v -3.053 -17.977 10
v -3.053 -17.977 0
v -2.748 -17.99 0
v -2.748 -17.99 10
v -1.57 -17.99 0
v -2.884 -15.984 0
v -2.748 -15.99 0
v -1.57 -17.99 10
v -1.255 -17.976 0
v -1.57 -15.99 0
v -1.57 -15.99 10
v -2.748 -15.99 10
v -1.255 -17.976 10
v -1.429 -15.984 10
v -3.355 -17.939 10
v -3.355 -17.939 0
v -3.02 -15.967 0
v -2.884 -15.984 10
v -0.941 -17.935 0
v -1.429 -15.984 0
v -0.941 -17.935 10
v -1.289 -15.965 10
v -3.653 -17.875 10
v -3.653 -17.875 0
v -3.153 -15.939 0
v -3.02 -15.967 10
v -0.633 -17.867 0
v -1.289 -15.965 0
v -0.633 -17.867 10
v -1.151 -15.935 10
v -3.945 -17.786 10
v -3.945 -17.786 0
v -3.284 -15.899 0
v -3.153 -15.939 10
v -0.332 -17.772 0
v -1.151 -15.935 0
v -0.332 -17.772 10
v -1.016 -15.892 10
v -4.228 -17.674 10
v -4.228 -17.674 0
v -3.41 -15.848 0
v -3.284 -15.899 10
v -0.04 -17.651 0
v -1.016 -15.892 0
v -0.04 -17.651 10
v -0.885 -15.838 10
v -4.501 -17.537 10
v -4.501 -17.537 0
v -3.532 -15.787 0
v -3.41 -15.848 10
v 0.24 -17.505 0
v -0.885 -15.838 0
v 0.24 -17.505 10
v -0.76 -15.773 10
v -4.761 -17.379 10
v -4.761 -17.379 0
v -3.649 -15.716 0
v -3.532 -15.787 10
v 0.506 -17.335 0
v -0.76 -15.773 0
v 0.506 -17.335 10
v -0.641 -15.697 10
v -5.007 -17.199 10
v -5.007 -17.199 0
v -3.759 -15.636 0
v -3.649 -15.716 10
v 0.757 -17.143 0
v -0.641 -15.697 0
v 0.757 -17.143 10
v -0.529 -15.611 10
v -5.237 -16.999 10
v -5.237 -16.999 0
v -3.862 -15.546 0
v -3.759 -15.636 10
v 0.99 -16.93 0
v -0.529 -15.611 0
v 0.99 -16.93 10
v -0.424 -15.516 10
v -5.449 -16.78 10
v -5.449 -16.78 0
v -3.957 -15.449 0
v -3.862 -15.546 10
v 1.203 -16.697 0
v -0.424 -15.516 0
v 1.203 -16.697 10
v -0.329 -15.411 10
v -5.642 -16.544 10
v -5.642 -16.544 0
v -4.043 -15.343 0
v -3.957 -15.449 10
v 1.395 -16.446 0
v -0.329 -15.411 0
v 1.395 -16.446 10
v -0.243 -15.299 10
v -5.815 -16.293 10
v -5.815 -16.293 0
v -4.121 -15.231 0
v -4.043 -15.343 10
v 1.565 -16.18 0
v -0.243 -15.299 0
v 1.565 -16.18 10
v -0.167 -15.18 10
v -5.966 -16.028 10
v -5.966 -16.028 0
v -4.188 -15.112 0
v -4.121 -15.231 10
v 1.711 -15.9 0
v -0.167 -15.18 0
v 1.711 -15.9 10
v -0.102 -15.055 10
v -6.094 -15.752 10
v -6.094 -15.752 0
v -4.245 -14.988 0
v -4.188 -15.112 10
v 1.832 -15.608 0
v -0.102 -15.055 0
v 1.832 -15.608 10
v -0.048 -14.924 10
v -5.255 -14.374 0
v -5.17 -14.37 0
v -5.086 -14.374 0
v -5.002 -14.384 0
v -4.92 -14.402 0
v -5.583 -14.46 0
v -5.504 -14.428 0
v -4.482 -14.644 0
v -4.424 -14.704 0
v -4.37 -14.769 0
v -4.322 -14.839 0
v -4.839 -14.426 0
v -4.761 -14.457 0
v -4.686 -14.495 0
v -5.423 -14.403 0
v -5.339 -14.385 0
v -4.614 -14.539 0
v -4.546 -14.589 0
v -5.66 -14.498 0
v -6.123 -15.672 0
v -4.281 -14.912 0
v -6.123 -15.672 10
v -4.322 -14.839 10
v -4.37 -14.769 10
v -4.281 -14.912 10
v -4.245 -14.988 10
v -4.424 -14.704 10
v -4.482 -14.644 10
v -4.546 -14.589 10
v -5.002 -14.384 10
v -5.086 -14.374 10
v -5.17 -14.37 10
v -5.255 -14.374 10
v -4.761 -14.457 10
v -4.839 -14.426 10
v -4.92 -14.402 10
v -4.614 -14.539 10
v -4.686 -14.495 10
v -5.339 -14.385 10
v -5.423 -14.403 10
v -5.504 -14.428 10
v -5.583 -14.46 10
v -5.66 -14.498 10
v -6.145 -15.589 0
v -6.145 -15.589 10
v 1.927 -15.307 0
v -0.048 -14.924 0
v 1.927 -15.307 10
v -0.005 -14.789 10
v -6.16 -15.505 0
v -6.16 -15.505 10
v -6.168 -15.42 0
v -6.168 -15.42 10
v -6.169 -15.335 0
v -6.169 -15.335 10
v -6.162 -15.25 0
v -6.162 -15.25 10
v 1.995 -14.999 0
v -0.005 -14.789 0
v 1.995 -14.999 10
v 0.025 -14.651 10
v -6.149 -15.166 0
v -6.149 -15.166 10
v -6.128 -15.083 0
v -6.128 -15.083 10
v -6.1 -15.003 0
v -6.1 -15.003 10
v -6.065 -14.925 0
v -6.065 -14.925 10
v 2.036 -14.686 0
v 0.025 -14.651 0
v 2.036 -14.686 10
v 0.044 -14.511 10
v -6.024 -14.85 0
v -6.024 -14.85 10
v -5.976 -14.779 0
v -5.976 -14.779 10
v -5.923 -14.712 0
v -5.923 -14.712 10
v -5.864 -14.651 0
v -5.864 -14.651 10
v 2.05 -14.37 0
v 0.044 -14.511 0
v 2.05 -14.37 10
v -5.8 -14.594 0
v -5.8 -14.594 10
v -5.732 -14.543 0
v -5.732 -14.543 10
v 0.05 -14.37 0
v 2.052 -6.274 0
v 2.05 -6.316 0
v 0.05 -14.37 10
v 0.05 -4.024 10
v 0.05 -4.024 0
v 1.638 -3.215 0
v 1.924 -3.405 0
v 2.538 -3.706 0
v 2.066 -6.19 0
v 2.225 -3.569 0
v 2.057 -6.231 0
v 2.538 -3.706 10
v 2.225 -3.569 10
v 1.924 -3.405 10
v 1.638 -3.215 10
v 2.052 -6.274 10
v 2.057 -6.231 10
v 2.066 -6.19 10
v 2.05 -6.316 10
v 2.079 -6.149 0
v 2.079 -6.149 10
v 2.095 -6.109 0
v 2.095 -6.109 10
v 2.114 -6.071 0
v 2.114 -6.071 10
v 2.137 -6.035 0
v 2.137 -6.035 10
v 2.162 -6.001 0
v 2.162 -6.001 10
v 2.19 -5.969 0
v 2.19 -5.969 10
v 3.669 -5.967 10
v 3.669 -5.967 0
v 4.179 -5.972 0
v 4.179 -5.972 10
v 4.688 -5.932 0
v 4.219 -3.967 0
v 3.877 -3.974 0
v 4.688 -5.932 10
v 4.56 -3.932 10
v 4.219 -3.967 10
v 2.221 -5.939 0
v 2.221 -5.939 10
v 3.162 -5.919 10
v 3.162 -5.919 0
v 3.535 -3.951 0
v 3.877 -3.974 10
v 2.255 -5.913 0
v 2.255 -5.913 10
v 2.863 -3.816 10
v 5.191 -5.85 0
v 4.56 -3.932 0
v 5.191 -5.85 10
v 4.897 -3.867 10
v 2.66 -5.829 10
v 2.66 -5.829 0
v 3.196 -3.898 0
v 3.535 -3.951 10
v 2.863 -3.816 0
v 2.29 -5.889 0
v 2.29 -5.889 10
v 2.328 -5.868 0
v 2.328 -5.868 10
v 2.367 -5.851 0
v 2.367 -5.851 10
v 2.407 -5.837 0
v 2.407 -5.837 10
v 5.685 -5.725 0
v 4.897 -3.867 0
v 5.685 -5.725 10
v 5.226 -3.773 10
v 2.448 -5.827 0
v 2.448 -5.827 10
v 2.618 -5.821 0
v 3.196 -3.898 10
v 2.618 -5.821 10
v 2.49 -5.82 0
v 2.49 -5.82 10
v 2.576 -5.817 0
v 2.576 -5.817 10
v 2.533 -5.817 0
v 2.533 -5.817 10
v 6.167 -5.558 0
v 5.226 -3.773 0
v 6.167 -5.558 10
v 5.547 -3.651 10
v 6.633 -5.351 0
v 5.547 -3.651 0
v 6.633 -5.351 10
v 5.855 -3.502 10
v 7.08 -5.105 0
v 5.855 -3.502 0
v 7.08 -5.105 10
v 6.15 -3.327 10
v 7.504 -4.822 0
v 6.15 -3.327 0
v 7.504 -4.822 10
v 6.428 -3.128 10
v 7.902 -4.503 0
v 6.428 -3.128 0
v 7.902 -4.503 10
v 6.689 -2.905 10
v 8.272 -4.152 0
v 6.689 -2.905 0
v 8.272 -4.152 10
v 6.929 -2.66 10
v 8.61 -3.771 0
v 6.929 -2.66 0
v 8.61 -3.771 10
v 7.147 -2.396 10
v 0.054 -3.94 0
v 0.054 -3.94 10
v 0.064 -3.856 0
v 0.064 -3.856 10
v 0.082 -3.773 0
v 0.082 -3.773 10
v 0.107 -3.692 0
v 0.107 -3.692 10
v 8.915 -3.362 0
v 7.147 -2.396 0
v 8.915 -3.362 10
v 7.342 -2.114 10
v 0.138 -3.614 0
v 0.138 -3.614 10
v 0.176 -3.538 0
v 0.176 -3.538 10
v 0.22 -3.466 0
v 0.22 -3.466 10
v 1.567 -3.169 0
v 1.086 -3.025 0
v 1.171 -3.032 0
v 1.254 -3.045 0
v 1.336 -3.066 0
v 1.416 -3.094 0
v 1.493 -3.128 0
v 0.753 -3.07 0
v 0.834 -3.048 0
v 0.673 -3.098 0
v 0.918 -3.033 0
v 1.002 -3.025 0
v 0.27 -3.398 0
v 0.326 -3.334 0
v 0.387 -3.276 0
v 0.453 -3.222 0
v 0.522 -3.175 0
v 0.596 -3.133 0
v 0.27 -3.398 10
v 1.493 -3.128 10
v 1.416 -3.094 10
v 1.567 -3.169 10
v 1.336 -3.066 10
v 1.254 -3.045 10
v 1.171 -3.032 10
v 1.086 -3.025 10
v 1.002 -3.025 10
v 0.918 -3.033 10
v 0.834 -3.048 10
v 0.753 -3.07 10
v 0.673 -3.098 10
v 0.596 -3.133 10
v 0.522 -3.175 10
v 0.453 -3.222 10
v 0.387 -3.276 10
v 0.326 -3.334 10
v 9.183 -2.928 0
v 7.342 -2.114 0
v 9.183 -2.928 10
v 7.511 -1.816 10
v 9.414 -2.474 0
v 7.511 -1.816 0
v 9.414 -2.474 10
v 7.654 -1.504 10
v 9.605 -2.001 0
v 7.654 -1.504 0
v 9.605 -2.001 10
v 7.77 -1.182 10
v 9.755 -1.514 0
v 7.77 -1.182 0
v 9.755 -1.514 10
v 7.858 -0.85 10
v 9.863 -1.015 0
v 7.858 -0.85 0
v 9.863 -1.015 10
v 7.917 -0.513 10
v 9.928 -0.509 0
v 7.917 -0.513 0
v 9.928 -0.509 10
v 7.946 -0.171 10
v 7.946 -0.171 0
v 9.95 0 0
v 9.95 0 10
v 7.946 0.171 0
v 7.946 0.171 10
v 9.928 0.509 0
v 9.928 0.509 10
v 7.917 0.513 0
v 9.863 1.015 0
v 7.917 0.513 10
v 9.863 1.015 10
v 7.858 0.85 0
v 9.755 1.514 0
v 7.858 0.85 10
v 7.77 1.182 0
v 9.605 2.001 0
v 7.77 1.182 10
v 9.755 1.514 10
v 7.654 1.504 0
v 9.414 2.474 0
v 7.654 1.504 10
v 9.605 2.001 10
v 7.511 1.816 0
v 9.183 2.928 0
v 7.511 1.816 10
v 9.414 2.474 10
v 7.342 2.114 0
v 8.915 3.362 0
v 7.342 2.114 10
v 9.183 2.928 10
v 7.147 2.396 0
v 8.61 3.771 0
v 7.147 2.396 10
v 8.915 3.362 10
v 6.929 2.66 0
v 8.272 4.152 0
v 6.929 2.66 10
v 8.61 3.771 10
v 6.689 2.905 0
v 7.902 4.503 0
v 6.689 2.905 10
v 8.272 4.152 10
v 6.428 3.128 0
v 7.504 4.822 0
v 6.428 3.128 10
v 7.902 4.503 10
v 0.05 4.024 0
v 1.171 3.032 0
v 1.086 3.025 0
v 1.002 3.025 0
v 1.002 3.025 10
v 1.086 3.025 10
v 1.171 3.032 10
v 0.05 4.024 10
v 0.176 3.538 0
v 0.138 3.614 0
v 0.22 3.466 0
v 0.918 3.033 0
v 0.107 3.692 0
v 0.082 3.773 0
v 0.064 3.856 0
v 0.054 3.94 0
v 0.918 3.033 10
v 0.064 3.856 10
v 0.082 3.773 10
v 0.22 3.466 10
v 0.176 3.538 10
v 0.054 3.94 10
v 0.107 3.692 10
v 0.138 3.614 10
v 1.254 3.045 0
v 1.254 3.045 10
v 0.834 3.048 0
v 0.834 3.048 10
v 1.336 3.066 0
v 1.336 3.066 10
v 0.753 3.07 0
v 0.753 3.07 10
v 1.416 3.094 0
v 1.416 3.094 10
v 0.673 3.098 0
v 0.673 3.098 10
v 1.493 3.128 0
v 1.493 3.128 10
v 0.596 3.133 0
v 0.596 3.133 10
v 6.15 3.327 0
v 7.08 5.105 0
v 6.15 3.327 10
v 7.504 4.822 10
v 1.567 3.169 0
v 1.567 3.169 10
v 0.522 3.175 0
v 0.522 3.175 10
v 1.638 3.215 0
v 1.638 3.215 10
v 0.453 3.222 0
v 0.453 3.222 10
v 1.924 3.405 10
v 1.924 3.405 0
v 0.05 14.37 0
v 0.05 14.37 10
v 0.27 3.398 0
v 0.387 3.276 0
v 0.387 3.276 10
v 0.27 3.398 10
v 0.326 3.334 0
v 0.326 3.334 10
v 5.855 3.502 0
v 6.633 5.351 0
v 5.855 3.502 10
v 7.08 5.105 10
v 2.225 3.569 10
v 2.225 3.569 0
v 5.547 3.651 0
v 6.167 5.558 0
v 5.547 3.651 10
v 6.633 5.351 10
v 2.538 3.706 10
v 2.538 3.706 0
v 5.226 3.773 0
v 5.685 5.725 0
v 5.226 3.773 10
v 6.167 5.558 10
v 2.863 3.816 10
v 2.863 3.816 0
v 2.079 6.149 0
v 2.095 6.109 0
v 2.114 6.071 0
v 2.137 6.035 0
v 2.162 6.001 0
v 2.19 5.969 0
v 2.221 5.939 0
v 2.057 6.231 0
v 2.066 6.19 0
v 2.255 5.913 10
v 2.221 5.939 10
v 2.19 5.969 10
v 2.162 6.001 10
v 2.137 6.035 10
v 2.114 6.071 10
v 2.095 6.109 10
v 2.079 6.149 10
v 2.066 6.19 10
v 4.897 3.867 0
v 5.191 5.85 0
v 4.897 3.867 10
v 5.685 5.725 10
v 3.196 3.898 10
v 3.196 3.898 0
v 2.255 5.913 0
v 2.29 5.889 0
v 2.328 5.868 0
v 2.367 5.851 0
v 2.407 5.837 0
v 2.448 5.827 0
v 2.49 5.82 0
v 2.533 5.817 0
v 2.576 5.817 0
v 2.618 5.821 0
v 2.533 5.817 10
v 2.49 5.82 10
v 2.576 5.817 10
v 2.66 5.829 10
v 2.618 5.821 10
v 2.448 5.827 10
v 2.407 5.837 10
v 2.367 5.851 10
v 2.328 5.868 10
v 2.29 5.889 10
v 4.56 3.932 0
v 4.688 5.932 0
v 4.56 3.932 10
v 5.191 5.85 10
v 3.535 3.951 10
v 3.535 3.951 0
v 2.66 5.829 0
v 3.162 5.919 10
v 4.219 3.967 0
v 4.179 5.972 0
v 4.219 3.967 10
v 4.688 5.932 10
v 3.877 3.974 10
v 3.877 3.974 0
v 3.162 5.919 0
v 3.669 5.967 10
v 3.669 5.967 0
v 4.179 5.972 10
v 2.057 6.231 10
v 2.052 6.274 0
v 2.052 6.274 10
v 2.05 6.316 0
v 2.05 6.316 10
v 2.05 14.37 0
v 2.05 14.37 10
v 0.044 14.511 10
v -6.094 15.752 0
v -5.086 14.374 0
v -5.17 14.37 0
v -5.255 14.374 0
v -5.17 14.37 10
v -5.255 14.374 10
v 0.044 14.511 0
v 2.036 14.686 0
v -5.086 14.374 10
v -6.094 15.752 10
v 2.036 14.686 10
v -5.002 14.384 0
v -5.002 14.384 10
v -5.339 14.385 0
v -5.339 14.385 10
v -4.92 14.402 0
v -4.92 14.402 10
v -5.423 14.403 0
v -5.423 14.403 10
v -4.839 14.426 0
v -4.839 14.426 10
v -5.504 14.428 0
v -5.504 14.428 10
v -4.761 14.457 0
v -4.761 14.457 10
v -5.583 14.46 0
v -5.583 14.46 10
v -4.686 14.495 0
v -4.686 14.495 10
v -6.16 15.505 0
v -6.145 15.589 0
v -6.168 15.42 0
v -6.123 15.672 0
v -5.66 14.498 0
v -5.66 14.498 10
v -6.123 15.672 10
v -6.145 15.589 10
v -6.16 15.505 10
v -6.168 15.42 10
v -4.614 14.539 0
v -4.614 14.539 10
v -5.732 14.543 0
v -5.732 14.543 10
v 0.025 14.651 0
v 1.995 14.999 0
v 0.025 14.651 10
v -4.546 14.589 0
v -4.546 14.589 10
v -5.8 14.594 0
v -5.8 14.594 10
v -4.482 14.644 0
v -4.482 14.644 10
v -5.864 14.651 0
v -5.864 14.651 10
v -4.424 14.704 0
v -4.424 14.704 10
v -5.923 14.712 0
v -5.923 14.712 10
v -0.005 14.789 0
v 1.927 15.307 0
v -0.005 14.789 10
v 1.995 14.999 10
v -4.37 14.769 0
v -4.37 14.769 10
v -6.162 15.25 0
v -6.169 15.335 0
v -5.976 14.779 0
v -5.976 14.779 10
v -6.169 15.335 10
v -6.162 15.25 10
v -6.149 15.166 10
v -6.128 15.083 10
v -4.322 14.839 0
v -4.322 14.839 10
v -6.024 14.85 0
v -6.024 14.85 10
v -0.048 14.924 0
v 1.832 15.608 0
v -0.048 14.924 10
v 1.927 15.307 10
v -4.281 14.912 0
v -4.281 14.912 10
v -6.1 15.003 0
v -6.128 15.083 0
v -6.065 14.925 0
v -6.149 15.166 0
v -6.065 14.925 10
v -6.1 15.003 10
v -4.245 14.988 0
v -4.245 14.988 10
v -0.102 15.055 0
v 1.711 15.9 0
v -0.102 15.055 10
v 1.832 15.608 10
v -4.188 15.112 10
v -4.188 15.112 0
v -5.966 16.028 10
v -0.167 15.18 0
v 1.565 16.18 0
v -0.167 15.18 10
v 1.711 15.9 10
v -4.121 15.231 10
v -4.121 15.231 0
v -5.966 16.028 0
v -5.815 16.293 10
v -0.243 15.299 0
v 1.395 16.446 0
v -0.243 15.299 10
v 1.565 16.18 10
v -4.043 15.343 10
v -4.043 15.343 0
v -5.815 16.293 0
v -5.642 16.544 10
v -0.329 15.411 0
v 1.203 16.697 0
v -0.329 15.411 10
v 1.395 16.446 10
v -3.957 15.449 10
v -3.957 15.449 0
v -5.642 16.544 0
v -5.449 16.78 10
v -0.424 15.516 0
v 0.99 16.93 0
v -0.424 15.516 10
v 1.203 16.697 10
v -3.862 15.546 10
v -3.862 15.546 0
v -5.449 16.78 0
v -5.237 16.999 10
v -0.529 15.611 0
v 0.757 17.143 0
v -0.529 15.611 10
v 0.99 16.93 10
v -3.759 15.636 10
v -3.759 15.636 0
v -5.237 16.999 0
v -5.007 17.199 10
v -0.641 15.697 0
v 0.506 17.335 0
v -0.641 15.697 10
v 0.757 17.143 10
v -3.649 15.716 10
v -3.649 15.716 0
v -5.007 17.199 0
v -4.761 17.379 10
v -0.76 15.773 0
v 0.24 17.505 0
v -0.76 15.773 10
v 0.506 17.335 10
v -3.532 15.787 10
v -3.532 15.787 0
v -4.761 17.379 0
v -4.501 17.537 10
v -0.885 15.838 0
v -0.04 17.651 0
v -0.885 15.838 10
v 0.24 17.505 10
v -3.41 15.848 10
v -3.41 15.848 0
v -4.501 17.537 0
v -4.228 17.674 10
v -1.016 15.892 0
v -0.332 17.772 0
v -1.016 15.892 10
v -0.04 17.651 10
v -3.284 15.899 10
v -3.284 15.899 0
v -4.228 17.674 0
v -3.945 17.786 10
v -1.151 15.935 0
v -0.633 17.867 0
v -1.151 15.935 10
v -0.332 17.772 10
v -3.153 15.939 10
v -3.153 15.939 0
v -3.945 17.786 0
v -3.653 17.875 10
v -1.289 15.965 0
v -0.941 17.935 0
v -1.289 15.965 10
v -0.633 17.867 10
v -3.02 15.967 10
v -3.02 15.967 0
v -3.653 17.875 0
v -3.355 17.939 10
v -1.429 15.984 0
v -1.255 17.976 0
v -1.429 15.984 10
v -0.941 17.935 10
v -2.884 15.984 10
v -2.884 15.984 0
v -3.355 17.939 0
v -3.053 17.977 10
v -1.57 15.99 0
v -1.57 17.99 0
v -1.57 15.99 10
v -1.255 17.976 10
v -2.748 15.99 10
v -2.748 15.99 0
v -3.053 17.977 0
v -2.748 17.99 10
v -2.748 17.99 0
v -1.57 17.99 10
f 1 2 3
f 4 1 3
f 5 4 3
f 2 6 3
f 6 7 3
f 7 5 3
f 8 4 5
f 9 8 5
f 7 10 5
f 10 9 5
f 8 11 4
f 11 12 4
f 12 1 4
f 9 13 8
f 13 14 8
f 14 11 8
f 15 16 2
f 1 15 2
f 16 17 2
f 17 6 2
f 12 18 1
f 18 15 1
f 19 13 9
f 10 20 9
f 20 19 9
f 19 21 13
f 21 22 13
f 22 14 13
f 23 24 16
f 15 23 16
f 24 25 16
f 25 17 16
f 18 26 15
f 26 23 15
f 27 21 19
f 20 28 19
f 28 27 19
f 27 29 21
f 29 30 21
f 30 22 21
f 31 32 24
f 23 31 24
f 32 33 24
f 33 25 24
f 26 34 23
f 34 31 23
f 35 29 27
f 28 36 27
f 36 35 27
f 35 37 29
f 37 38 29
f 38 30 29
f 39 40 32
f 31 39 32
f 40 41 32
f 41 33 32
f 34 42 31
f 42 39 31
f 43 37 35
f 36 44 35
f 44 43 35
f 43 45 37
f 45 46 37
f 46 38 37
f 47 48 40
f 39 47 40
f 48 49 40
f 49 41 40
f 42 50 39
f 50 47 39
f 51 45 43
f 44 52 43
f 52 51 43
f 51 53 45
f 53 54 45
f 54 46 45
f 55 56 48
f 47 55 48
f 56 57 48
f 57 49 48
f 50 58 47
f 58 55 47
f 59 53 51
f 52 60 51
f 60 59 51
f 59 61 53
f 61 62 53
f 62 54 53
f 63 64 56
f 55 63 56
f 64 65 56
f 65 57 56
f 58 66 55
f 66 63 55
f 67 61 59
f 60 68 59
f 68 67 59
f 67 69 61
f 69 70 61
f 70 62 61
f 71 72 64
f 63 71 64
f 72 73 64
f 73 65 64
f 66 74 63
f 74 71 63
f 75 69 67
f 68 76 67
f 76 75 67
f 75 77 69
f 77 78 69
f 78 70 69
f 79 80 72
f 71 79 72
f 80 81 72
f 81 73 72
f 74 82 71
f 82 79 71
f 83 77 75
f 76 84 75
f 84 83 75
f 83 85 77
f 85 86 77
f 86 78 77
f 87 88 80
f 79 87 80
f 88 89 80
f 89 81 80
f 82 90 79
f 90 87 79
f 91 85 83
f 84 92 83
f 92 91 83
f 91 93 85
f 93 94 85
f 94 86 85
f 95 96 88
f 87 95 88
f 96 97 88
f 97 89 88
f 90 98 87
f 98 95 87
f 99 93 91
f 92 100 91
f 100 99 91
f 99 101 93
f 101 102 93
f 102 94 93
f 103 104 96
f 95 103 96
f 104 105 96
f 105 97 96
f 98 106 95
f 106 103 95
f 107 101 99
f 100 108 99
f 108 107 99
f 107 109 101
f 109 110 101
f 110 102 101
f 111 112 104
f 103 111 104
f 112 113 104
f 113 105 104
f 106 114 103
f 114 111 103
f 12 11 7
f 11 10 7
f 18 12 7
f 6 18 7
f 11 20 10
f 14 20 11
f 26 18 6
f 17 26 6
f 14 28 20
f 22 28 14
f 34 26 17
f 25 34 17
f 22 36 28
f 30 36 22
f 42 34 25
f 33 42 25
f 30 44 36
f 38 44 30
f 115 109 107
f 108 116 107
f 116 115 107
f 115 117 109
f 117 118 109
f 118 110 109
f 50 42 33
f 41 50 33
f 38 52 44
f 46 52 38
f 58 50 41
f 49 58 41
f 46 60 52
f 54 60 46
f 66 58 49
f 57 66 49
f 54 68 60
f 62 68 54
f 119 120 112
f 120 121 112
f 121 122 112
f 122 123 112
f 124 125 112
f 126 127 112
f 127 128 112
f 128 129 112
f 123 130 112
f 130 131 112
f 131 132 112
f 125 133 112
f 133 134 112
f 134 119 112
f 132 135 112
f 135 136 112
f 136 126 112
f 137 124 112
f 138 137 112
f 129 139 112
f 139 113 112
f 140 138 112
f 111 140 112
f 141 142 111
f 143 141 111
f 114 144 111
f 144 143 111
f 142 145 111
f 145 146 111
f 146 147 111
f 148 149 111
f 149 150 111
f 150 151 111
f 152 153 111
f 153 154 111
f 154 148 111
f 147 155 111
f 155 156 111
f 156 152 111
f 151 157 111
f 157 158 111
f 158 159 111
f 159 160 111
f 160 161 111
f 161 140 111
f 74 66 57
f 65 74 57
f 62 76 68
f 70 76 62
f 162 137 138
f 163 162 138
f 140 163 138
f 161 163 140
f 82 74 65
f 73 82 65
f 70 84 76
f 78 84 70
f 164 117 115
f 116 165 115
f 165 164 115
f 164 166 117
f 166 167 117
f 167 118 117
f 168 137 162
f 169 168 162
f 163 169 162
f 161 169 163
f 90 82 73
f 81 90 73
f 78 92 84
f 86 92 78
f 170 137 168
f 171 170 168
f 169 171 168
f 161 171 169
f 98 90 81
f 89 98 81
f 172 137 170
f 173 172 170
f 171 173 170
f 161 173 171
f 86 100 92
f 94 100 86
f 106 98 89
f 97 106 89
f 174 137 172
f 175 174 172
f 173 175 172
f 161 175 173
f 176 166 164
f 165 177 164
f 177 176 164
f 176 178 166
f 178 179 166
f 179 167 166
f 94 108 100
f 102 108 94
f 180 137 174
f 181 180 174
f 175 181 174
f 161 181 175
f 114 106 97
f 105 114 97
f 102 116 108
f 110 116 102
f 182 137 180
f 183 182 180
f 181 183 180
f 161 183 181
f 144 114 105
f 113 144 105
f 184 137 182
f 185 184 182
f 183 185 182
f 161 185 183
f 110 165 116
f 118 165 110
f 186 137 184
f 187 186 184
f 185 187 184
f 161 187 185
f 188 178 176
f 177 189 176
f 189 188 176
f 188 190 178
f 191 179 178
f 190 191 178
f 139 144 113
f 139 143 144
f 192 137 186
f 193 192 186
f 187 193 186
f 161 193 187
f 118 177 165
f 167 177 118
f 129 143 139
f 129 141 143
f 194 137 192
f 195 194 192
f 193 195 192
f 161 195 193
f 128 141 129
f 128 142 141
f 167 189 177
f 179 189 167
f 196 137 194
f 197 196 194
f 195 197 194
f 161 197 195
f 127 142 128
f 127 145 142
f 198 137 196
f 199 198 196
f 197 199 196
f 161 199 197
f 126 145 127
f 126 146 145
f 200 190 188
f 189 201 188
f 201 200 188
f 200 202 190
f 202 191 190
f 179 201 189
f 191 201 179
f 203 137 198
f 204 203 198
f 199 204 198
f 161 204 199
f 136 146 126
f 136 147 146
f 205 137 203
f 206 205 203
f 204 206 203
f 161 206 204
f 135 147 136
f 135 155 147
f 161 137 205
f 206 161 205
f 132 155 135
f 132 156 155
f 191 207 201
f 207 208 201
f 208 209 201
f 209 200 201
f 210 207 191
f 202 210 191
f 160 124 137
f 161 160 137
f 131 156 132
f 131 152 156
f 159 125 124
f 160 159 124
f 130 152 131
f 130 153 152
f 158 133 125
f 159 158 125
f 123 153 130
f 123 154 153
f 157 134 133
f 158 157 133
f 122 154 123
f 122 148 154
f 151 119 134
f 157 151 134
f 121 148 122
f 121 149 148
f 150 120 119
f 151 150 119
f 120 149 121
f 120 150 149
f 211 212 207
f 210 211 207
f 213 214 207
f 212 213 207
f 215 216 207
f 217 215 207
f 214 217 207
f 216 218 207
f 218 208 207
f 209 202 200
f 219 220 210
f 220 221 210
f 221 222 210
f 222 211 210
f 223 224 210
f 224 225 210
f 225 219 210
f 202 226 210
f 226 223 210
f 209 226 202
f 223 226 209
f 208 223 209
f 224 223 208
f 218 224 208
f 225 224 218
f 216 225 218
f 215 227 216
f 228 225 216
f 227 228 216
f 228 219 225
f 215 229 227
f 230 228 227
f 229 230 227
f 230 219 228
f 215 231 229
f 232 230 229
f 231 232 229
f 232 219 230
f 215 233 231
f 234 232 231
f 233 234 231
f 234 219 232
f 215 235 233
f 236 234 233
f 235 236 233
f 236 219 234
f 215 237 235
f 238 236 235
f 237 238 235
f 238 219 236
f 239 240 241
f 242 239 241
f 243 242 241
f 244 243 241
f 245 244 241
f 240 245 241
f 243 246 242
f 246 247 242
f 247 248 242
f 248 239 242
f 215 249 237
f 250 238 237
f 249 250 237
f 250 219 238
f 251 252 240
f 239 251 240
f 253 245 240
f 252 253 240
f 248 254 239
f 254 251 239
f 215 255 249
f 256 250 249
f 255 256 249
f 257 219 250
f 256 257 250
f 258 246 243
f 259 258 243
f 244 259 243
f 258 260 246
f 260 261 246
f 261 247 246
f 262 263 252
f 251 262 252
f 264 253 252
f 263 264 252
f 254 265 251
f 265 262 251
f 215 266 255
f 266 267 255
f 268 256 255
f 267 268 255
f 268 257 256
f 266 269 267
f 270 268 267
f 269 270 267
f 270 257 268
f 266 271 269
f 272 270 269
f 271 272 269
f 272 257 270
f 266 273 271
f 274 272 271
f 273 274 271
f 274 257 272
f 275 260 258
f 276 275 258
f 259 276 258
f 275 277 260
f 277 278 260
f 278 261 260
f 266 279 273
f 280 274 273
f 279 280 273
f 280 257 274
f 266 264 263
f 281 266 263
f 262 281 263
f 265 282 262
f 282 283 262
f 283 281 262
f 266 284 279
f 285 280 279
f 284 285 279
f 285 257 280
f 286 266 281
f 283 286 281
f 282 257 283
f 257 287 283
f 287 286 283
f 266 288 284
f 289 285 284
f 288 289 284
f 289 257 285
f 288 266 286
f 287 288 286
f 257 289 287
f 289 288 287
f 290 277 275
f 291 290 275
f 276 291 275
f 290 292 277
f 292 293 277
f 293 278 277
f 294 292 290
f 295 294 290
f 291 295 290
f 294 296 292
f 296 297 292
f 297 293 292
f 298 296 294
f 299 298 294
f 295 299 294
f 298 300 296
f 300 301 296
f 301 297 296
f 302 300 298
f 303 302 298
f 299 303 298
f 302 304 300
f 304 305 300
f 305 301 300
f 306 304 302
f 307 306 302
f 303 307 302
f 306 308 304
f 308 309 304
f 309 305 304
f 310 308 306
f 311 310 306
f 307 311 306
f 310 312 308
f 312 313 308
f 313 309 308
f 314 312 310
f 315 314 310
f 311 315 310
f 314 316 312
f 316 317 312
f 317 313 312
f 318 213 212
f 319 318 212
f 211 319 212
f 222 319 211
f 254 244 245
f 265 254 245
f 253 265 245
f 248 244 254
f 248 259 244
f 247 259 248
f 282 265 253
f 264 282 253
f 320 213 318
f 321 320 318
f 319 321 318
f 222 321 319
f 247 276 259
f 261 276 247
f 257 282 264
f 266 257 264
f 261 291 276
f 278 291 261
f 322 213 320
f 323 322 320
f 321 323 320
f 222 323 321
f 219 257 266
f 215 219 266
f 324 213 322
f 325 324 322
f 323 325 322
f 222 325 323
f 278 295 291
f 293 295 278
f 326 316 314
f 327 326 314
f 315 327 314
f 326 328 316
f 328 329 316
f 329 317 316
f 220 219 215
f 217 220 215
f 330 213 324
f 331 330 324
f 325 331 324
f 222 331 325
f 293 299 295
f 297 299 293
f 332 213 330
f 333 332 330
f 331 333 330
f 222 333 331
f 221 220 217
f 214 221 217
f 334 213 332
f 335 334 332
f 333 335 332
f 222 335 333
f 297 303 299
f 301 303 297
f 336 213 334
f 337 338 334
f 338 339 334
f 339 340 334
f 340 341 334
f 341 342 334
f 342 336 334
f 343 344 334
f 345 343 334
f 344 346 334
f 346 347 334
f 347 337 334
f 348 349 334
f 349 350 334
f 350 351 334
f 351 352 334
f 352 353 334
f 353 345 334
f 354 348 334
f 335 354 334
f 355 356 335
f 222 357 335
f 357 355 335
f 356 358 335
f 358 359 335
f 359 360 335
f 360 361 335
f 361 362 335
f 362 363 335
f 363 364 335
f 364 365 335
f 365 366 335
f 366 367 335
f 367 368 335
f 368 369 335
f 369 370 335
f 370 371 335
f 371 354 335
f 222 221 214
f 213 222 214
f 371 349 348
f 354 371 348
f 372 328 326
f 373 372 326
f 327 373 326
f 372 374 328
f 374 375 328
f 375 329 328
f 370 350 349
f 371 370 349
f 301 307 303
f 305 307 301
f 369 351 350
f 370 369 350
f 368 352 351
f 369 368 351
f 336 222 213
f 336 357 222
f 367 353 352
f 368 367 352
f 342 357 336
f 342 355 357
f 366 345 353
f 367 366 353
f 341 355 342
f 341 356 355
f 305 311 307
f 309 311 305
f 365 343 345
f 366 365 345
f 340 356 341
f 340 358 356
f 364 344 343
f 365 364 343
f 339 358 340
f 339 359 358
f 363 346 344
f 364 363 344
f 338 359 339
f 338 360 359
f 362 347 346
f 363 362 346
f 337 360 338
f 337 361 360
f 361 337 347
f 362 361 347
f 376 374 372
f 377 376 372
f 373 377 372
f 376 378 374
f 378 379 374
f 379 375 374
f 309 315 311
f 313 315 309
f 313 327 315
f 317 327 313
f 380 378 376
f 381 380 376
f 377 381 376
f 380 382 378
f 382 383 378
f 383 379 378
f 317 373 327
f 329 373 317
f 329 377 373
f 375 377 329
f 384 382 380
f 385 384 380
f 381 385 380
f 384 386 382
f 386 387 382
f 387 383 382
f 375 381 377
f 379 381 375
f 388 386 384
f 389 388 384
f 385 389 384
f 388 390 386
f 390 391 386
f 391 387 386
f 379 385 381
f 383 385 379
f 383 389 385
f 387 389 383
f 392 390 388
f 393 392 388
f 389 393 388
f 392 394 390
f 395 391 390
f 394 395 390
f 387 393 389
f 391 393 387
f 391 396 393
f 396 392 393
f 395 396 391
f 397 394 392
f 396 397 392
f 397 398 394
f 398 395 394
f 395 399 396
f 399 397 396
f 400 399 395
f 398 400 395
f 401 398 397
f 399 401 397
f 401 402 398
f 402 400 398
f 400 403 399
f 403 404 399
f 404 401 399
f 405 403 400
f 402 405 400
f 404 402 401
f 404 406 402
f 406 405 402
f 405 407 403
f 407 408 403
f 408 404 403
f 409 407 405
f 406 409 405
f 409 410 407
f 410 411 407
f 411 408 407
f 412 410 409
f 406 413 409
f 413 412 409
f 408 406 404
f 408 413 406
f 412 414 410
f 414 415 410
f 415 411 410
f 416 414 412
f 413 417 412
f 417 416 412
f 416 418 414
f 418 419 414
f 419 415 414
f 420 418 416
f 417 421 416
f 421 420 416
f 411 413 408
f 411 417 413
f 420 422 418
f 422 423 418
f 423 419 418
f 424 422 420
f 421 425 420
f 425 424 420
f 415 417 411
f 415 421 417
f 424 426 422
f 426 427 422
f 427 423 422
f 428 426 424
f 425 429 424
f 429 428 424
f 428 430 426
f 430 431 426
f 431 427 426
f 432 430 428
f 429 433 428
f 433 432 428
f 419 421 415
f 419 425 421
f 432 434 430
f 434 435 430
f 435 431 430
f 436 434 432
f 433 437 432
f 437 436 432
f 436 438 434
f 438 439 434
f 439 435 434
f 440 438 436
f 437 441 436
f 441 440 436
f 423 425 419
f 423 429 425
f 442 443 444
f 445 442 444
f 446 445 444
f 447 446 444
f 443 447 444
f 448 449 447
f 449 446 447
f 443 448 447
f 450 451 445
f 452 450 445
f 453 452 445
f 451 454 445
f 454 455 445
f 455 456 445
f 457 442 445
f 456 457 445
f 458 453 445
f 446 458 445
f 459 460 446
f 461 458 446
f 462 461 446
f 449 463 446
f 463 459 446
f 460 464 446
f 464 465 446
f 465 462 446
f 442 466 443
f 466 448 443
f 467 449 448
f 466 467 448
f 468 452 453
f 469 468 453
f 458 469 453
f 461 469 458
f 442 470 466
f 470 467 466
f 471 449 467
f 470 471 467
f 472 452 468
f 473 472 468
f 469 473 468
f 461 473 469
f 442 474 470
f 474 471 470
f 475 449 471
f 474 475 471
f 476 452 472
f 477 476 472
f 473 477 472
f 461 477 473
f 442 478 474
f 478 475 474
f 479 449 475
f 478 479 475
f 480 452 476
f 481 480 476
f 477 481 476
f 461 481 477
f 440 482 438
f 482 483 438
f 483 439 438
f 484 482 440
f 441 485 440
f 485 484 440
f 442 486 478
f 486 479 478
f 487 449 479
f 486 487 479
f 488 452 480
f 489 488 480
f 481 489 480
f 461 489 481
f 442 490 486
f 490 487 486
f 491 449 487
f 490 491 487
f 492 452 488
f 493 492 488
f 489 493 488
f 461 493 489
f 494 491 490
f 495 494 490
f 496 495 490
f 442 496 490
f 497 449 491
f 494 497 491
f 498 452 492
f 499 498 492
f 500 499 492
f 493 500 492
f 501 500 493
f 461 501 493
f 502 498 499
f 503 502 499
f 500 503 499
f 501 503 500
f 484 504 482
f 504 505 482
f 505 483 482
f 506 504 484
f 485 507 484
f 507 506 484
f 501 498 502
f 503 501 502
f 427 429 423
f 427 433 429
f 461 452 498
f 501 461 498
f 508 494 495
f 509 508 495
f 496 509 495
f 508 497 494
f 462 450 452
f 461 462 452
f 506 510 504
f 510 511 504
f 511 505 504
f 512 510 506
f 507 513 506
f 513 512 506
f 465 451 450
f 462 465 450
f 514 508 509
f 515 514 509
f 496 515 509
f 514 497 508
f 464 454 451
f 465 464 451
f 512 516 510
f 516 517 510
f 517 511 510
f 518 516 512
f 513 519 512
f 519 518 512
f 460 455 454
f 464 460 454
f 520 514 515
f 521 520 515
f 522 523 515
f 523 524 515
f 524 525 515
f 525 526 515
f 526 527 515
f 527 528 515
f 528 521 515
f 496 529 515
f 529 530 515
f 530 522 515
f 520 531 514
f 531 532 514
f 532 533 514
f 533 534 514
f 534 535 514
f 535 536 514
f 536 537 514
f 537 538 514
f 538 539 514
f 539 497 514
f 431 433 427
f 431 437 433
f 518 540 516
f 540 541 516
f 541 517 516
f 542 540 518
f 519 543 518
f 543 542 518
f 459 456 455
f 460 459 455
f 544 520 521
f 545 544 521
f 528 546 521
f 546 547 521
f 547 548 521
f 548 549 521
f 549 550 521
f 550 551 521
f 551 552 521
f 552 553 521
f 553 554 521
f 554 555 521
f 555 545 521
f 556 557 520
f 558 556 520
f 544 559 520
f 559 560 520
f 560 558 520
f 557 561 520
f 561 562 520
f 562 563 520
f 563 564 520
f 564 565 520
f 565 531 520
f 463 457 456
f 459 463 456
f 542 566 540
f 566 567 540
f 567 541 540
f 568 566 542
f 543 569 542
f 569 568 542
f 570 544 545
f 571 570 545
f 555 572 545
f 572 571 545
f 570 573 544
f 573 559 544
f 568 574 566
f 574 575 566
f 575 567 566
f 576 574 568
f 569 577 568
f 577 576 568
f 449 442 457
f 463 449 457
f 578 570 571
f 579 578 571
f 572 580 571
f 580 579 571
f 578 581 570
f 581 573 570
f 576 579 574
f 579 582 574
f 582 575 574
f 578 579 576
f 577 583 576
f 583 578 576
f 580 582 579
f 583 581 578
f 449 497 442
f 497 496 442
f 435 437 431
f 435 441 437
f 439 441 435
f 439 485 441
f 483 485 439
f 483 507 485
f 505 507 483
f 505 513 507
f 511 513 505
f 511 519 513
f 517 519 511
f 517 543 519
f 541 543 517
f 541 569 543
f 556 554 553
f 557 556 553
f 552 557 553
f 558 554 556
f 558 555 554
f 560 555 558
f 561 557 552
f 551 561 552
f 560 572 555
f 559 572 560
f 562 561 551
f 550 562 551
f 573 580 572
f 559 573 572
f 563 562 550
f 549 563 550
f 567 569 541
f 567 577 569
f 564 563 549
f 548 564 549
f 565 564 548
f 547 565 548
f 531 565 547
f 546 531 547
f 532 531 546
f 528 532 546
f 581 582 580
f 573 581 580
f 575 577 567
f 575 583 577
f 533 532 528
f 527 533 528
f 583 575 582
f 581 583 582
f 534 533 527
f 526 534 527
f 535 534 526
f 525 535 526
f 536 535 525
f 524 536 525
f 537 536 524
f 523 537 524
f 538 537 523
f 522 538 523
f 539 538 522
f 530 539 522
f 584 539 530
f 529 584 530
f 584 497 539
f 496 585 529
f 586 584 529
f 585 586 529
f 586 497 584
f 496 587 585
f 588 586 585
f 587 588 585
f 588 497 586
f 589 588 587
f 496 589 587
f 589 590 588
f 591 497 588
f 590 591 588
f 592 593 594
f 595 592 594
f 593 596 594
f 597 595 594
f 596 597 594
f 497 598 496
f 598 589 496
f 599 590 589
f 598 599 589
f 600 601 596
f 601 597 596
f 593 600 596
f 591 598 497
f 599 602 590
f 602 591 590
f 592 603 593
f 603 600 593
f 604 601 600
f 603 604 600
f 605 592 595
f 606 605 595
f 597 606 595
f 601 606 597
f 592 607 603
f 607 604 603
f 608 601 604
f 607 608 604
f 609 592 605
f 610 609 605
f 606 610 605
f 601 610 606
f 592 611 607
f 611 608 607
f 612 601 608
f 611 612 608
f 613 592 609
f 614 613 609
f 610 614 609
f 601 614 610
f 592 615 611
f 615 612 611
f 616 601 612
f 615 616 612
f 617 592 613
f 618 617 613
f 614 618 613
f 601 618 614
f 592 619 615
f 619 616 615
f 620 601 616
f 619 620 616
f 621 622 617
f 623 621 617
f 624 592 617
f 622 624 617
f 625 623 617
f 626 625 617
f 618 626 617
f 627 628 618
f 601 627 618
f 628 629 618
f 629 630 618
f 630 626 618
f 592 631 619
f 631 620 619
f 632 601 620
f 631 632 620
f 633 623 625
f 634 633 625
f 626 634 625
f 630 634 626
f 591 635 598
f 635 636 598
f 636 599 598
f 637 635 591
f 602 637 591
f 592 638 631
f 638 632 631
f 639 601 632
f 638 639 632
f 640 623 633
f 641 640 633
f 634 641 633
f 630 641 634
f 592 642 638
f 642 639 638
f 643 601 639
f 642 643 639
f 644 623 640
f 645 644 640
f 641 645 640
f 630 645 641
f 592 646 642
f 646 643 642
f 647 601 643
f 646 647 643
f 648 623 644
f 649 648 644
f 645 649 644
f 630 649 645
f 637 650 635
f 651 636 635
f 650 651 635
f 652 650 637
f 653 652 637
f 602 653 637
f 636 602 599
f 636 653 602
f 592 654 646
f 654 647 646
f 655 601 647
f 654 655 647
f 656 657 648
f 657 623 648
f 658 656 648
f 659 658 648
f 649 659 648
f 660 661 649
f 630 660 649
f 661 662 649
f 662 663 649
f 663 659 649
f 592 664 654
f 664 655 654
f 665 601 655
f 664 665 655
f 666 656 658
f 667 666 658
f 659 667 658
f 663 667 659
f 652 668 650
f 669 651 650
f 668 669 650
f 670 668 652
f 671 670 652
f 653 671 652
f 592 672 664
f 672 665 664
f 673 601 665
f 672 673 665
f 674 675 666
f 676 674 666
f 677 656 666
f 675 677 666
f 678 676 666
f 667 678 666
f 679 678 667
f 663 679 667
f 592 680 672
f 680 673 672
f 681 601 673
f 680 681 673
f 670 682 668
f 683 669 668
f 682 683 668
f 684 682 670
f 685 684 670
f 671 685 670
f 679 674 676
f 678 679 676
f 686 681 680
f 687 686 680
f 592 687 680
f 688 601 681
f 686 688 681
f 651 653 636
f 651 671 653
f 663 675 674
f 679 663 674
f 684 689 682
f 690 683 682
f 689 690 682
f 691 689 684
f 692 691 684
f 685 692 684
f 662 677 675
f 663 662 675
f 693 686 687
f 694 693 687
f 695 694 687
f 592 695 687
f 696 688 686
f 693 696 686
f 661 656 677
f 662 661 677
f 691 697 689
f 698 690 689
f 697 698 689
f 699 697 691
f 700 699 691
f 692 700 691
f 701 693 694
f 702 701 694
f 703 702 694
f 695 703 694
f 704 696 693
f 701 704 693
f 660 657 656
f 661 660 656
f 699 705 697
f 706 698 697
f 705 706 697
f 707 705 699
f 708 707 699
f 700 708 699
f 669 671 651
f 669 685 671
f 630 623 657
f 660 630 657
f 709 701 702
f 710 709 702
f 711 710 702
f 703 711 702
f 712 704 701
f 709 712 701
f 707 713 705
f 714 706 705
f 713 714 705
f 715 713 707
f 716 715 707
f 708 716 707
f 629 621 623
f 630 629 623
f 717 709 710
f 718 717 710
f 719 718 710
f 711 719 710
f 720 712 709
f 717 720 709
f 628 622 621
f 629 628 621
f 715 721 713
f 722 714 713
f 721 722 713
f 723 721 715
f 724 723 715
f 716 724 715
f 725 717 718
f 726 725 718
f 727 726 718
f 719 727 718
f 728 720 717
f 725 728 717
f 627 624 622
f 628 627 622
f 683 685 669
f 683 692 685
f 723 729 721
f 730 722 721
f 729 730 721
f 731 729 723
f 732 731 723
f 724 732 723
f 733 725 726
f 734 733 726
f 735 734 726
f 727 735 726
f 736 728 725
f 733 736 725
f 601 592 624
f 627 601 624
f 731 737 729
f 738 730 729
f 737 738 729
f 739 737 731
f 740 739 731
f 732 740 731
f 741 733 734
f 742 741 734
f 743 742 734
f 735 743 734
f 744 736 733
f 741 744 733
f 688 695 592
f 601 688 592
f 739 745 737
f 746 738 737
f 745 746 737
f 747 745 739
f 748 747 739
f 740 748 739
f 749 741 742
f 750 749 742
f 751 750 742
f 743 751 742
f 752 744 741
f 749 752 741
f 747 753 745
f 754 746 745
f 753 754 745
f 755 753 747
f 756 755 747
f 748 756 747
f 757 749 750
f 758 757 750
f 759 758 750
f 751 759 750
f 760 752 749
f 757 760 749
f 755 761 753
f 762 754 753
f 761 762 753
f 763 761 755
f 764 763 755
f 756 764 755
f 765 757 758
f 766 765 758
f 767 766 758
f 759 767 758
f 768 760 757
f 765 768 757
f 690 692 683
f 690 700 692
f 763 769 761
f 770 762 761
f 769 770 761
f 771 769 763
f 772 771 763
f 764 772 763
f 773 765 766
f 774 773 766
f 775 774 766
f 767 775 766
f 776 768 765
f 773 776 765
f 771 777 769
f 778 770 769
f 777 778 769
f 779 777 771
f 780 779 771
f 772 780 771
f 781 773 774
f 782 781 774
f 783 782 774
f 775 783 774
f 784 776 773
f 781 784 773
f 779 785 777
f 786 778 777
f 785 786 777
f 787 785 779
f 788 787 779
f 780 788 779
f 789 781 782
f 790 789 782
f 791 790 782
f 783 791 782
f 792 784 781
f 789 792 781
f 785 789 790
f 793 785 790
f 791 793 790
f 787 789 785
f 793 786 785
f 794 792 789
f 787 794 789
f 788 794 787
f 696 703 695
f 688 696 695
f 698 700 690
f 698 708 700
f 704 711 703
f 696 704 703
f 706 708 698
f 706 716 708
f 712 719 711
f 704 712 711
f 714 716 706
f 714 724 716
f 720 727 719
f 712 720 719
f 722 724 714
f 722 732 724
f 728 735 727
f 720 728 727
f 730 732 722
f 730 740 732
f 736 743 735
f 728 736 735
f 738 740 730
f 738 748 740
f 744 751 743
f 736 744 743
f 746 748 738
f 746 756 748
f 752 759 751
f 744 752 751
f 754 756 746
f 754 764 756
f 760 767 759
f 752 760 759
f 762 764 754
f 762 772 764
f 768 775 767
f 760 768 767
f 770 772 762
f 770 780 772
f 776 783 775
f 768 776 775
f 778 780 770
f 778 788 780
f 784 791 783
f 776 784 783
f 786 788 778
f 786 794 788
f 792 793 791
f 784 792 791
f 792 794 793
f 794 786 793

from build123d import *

# Parameters (mm, degrees)
BOSS_EXTRUDE1_DEPTH = 10
FILLET1_R           = 1
FILLET2_R           = 0.5
FILLET3_R           = 1


with BuildPart() as part:
    # Sketch1 → Boss-Extrude1 (new body)
    with BuildSketch(Plane.XY):
        with BuildLine():
            Line((0.05, 14.37), (0.05, 4.504997225))
            ThreePointArc((0.05, 4.504997225), (0.993882062, 5.178181229), (2.05, 5.65641229))
            Line((2.05, 5.65641229), (2.05, 14.37))
            ThreePointArc((2.05, 14.37), (0.989726548, 16.929726548), (-1.57, 17.99))
            Line((-1.57, 17.99), (-2.748, 17.99))
            ThreePointArc((-2.748, 17.99), (-5.307726548, 16.929726548), (-6.368, 14.37))
            Line((-6.368, 14.37), (-4.368, 14.37))
            ThreePointArc((-4.368, 14.37), (-3.893512986, 15.515512986), (-2.748, 15.99))
            Line((-2.748, 15.99), (-1.57, 15.99))
            ThreePointArc((-1.57, 15.99), (-0.424487014, 15.515512986), (0.05, 14.37))
        make_face()
        with BuildLine():
            Line((0.05, -0.628490254), (0.05, -4.504997225))
            ThreePointArc((0.05, -4.504997225), (0.993882062, -5.178181229), (2.05, -5.65641229))
            Line((2.05, -5.65641229), (2.05, -3.477786652))
            ThreePointArc((2.05, -3.477786652), (0.721502268, -2.283720103), (0.05, -0.628490254))
        make_face()
        with BuildLine():
            ThreePointArc((2.05, 5.65641229), (0.993882062, 5.178181229), (0.05, 4.504997225))
            Line((0.05, 4.504997225), (0.05, 0.628490254))
            ThreePointArc((0.05, 0.628490254), (0.721502268, 2.283720103), (2.05, 3.477786652))
            Line((2.05, 3.477786652), (2.05, 5.65641229))
        make_face()
        with BuildLine():
            Line((2.05, -3.477786652), (2.05, -5.65641229))
            ThreePointArc((2.05, -5.65641229), (7.453415588, -4.858111773), (9.95, 0))
            ThreePointArc((9.95, 0), (7.453415588, 4.858111773), (2.05, 5.65641229))
            Line((2.05, 5.65641229), (2.05, 3.477786652))
            ThreePointArc((2.05, 3.477786652), (5.993508112, 3.424361254), (7.95, 0))
            ThreePointArc((7.95, 0), (5.993508112, -3.424361254), (2.05, -3.477786652))
        make_face()
        with BuildLine():
            Line((-1.57, -15.99), (-2.748, -15.99))
            ThreePointArc((-2.748, -15.99), (-3.893512986, -15.515512986), (-4.368, -14.37))
            Line((-4.368, -14.37), (-6.368, -14.37))
            ThreePointArc((-6.368, -14.37), (-5.307726548, -16.929726548), (-2.748, -17.99))
            Line((-2.748, -17.99), (-1.57, -17.99))
            ThreePointArc((-1.57, -17.99), (0.989726548, -16.929726548), (2.05, -14.37))
            Line((2.05, -14.37), (2.05, -5.65641229))
            ThreePointArc((2.05, -5.65641229), (0.993882062, -5.178181229), (0.05, -4.504997225))
            Line((0.05, -4.504997225), (0.05, -14.37))
            ThreePointArc((0.05, -14.37), (-0.424487014, -15.515512986), (-1.57, -15.99))
        make_face()
    extrude(amount=BOSS_EXTRUDE1_DEPTH)

    # Fillet1
    fillet1_edges = [part.edges().sort_by_distance(p)[0] for p in [
        (0.05, -0.628490254, 5),
        (0.05, 0.628490254, 5),
    ]]
    fillet(fillet1_edges, radius=FILLET1_R)

    # Fillet2
    fillet2_edges = [part.edges().sort_by_distance(p)[0] for p in [
        (2.05, 5.65641229, 5),
        (2.05, -5.65641229, 5),
    ]]
    fillet(fillet2_edges, radius=FILLET2_R)

    # Fillet3
    fillet3_edges = [part.edges().sort_by_distance(p)[0] for p in [
        (-6.368, 14.37, 5),
        (-4.368, 14.37, 5),
        (-6.368, -14.37, 5),
        (-4.368, -14.37, 5),
    ]]
    fillet(fillet3_edges, radius=FILLET3_R - 0.0001)  # a hair under: the kernel refuses the full size


solid = part.part
